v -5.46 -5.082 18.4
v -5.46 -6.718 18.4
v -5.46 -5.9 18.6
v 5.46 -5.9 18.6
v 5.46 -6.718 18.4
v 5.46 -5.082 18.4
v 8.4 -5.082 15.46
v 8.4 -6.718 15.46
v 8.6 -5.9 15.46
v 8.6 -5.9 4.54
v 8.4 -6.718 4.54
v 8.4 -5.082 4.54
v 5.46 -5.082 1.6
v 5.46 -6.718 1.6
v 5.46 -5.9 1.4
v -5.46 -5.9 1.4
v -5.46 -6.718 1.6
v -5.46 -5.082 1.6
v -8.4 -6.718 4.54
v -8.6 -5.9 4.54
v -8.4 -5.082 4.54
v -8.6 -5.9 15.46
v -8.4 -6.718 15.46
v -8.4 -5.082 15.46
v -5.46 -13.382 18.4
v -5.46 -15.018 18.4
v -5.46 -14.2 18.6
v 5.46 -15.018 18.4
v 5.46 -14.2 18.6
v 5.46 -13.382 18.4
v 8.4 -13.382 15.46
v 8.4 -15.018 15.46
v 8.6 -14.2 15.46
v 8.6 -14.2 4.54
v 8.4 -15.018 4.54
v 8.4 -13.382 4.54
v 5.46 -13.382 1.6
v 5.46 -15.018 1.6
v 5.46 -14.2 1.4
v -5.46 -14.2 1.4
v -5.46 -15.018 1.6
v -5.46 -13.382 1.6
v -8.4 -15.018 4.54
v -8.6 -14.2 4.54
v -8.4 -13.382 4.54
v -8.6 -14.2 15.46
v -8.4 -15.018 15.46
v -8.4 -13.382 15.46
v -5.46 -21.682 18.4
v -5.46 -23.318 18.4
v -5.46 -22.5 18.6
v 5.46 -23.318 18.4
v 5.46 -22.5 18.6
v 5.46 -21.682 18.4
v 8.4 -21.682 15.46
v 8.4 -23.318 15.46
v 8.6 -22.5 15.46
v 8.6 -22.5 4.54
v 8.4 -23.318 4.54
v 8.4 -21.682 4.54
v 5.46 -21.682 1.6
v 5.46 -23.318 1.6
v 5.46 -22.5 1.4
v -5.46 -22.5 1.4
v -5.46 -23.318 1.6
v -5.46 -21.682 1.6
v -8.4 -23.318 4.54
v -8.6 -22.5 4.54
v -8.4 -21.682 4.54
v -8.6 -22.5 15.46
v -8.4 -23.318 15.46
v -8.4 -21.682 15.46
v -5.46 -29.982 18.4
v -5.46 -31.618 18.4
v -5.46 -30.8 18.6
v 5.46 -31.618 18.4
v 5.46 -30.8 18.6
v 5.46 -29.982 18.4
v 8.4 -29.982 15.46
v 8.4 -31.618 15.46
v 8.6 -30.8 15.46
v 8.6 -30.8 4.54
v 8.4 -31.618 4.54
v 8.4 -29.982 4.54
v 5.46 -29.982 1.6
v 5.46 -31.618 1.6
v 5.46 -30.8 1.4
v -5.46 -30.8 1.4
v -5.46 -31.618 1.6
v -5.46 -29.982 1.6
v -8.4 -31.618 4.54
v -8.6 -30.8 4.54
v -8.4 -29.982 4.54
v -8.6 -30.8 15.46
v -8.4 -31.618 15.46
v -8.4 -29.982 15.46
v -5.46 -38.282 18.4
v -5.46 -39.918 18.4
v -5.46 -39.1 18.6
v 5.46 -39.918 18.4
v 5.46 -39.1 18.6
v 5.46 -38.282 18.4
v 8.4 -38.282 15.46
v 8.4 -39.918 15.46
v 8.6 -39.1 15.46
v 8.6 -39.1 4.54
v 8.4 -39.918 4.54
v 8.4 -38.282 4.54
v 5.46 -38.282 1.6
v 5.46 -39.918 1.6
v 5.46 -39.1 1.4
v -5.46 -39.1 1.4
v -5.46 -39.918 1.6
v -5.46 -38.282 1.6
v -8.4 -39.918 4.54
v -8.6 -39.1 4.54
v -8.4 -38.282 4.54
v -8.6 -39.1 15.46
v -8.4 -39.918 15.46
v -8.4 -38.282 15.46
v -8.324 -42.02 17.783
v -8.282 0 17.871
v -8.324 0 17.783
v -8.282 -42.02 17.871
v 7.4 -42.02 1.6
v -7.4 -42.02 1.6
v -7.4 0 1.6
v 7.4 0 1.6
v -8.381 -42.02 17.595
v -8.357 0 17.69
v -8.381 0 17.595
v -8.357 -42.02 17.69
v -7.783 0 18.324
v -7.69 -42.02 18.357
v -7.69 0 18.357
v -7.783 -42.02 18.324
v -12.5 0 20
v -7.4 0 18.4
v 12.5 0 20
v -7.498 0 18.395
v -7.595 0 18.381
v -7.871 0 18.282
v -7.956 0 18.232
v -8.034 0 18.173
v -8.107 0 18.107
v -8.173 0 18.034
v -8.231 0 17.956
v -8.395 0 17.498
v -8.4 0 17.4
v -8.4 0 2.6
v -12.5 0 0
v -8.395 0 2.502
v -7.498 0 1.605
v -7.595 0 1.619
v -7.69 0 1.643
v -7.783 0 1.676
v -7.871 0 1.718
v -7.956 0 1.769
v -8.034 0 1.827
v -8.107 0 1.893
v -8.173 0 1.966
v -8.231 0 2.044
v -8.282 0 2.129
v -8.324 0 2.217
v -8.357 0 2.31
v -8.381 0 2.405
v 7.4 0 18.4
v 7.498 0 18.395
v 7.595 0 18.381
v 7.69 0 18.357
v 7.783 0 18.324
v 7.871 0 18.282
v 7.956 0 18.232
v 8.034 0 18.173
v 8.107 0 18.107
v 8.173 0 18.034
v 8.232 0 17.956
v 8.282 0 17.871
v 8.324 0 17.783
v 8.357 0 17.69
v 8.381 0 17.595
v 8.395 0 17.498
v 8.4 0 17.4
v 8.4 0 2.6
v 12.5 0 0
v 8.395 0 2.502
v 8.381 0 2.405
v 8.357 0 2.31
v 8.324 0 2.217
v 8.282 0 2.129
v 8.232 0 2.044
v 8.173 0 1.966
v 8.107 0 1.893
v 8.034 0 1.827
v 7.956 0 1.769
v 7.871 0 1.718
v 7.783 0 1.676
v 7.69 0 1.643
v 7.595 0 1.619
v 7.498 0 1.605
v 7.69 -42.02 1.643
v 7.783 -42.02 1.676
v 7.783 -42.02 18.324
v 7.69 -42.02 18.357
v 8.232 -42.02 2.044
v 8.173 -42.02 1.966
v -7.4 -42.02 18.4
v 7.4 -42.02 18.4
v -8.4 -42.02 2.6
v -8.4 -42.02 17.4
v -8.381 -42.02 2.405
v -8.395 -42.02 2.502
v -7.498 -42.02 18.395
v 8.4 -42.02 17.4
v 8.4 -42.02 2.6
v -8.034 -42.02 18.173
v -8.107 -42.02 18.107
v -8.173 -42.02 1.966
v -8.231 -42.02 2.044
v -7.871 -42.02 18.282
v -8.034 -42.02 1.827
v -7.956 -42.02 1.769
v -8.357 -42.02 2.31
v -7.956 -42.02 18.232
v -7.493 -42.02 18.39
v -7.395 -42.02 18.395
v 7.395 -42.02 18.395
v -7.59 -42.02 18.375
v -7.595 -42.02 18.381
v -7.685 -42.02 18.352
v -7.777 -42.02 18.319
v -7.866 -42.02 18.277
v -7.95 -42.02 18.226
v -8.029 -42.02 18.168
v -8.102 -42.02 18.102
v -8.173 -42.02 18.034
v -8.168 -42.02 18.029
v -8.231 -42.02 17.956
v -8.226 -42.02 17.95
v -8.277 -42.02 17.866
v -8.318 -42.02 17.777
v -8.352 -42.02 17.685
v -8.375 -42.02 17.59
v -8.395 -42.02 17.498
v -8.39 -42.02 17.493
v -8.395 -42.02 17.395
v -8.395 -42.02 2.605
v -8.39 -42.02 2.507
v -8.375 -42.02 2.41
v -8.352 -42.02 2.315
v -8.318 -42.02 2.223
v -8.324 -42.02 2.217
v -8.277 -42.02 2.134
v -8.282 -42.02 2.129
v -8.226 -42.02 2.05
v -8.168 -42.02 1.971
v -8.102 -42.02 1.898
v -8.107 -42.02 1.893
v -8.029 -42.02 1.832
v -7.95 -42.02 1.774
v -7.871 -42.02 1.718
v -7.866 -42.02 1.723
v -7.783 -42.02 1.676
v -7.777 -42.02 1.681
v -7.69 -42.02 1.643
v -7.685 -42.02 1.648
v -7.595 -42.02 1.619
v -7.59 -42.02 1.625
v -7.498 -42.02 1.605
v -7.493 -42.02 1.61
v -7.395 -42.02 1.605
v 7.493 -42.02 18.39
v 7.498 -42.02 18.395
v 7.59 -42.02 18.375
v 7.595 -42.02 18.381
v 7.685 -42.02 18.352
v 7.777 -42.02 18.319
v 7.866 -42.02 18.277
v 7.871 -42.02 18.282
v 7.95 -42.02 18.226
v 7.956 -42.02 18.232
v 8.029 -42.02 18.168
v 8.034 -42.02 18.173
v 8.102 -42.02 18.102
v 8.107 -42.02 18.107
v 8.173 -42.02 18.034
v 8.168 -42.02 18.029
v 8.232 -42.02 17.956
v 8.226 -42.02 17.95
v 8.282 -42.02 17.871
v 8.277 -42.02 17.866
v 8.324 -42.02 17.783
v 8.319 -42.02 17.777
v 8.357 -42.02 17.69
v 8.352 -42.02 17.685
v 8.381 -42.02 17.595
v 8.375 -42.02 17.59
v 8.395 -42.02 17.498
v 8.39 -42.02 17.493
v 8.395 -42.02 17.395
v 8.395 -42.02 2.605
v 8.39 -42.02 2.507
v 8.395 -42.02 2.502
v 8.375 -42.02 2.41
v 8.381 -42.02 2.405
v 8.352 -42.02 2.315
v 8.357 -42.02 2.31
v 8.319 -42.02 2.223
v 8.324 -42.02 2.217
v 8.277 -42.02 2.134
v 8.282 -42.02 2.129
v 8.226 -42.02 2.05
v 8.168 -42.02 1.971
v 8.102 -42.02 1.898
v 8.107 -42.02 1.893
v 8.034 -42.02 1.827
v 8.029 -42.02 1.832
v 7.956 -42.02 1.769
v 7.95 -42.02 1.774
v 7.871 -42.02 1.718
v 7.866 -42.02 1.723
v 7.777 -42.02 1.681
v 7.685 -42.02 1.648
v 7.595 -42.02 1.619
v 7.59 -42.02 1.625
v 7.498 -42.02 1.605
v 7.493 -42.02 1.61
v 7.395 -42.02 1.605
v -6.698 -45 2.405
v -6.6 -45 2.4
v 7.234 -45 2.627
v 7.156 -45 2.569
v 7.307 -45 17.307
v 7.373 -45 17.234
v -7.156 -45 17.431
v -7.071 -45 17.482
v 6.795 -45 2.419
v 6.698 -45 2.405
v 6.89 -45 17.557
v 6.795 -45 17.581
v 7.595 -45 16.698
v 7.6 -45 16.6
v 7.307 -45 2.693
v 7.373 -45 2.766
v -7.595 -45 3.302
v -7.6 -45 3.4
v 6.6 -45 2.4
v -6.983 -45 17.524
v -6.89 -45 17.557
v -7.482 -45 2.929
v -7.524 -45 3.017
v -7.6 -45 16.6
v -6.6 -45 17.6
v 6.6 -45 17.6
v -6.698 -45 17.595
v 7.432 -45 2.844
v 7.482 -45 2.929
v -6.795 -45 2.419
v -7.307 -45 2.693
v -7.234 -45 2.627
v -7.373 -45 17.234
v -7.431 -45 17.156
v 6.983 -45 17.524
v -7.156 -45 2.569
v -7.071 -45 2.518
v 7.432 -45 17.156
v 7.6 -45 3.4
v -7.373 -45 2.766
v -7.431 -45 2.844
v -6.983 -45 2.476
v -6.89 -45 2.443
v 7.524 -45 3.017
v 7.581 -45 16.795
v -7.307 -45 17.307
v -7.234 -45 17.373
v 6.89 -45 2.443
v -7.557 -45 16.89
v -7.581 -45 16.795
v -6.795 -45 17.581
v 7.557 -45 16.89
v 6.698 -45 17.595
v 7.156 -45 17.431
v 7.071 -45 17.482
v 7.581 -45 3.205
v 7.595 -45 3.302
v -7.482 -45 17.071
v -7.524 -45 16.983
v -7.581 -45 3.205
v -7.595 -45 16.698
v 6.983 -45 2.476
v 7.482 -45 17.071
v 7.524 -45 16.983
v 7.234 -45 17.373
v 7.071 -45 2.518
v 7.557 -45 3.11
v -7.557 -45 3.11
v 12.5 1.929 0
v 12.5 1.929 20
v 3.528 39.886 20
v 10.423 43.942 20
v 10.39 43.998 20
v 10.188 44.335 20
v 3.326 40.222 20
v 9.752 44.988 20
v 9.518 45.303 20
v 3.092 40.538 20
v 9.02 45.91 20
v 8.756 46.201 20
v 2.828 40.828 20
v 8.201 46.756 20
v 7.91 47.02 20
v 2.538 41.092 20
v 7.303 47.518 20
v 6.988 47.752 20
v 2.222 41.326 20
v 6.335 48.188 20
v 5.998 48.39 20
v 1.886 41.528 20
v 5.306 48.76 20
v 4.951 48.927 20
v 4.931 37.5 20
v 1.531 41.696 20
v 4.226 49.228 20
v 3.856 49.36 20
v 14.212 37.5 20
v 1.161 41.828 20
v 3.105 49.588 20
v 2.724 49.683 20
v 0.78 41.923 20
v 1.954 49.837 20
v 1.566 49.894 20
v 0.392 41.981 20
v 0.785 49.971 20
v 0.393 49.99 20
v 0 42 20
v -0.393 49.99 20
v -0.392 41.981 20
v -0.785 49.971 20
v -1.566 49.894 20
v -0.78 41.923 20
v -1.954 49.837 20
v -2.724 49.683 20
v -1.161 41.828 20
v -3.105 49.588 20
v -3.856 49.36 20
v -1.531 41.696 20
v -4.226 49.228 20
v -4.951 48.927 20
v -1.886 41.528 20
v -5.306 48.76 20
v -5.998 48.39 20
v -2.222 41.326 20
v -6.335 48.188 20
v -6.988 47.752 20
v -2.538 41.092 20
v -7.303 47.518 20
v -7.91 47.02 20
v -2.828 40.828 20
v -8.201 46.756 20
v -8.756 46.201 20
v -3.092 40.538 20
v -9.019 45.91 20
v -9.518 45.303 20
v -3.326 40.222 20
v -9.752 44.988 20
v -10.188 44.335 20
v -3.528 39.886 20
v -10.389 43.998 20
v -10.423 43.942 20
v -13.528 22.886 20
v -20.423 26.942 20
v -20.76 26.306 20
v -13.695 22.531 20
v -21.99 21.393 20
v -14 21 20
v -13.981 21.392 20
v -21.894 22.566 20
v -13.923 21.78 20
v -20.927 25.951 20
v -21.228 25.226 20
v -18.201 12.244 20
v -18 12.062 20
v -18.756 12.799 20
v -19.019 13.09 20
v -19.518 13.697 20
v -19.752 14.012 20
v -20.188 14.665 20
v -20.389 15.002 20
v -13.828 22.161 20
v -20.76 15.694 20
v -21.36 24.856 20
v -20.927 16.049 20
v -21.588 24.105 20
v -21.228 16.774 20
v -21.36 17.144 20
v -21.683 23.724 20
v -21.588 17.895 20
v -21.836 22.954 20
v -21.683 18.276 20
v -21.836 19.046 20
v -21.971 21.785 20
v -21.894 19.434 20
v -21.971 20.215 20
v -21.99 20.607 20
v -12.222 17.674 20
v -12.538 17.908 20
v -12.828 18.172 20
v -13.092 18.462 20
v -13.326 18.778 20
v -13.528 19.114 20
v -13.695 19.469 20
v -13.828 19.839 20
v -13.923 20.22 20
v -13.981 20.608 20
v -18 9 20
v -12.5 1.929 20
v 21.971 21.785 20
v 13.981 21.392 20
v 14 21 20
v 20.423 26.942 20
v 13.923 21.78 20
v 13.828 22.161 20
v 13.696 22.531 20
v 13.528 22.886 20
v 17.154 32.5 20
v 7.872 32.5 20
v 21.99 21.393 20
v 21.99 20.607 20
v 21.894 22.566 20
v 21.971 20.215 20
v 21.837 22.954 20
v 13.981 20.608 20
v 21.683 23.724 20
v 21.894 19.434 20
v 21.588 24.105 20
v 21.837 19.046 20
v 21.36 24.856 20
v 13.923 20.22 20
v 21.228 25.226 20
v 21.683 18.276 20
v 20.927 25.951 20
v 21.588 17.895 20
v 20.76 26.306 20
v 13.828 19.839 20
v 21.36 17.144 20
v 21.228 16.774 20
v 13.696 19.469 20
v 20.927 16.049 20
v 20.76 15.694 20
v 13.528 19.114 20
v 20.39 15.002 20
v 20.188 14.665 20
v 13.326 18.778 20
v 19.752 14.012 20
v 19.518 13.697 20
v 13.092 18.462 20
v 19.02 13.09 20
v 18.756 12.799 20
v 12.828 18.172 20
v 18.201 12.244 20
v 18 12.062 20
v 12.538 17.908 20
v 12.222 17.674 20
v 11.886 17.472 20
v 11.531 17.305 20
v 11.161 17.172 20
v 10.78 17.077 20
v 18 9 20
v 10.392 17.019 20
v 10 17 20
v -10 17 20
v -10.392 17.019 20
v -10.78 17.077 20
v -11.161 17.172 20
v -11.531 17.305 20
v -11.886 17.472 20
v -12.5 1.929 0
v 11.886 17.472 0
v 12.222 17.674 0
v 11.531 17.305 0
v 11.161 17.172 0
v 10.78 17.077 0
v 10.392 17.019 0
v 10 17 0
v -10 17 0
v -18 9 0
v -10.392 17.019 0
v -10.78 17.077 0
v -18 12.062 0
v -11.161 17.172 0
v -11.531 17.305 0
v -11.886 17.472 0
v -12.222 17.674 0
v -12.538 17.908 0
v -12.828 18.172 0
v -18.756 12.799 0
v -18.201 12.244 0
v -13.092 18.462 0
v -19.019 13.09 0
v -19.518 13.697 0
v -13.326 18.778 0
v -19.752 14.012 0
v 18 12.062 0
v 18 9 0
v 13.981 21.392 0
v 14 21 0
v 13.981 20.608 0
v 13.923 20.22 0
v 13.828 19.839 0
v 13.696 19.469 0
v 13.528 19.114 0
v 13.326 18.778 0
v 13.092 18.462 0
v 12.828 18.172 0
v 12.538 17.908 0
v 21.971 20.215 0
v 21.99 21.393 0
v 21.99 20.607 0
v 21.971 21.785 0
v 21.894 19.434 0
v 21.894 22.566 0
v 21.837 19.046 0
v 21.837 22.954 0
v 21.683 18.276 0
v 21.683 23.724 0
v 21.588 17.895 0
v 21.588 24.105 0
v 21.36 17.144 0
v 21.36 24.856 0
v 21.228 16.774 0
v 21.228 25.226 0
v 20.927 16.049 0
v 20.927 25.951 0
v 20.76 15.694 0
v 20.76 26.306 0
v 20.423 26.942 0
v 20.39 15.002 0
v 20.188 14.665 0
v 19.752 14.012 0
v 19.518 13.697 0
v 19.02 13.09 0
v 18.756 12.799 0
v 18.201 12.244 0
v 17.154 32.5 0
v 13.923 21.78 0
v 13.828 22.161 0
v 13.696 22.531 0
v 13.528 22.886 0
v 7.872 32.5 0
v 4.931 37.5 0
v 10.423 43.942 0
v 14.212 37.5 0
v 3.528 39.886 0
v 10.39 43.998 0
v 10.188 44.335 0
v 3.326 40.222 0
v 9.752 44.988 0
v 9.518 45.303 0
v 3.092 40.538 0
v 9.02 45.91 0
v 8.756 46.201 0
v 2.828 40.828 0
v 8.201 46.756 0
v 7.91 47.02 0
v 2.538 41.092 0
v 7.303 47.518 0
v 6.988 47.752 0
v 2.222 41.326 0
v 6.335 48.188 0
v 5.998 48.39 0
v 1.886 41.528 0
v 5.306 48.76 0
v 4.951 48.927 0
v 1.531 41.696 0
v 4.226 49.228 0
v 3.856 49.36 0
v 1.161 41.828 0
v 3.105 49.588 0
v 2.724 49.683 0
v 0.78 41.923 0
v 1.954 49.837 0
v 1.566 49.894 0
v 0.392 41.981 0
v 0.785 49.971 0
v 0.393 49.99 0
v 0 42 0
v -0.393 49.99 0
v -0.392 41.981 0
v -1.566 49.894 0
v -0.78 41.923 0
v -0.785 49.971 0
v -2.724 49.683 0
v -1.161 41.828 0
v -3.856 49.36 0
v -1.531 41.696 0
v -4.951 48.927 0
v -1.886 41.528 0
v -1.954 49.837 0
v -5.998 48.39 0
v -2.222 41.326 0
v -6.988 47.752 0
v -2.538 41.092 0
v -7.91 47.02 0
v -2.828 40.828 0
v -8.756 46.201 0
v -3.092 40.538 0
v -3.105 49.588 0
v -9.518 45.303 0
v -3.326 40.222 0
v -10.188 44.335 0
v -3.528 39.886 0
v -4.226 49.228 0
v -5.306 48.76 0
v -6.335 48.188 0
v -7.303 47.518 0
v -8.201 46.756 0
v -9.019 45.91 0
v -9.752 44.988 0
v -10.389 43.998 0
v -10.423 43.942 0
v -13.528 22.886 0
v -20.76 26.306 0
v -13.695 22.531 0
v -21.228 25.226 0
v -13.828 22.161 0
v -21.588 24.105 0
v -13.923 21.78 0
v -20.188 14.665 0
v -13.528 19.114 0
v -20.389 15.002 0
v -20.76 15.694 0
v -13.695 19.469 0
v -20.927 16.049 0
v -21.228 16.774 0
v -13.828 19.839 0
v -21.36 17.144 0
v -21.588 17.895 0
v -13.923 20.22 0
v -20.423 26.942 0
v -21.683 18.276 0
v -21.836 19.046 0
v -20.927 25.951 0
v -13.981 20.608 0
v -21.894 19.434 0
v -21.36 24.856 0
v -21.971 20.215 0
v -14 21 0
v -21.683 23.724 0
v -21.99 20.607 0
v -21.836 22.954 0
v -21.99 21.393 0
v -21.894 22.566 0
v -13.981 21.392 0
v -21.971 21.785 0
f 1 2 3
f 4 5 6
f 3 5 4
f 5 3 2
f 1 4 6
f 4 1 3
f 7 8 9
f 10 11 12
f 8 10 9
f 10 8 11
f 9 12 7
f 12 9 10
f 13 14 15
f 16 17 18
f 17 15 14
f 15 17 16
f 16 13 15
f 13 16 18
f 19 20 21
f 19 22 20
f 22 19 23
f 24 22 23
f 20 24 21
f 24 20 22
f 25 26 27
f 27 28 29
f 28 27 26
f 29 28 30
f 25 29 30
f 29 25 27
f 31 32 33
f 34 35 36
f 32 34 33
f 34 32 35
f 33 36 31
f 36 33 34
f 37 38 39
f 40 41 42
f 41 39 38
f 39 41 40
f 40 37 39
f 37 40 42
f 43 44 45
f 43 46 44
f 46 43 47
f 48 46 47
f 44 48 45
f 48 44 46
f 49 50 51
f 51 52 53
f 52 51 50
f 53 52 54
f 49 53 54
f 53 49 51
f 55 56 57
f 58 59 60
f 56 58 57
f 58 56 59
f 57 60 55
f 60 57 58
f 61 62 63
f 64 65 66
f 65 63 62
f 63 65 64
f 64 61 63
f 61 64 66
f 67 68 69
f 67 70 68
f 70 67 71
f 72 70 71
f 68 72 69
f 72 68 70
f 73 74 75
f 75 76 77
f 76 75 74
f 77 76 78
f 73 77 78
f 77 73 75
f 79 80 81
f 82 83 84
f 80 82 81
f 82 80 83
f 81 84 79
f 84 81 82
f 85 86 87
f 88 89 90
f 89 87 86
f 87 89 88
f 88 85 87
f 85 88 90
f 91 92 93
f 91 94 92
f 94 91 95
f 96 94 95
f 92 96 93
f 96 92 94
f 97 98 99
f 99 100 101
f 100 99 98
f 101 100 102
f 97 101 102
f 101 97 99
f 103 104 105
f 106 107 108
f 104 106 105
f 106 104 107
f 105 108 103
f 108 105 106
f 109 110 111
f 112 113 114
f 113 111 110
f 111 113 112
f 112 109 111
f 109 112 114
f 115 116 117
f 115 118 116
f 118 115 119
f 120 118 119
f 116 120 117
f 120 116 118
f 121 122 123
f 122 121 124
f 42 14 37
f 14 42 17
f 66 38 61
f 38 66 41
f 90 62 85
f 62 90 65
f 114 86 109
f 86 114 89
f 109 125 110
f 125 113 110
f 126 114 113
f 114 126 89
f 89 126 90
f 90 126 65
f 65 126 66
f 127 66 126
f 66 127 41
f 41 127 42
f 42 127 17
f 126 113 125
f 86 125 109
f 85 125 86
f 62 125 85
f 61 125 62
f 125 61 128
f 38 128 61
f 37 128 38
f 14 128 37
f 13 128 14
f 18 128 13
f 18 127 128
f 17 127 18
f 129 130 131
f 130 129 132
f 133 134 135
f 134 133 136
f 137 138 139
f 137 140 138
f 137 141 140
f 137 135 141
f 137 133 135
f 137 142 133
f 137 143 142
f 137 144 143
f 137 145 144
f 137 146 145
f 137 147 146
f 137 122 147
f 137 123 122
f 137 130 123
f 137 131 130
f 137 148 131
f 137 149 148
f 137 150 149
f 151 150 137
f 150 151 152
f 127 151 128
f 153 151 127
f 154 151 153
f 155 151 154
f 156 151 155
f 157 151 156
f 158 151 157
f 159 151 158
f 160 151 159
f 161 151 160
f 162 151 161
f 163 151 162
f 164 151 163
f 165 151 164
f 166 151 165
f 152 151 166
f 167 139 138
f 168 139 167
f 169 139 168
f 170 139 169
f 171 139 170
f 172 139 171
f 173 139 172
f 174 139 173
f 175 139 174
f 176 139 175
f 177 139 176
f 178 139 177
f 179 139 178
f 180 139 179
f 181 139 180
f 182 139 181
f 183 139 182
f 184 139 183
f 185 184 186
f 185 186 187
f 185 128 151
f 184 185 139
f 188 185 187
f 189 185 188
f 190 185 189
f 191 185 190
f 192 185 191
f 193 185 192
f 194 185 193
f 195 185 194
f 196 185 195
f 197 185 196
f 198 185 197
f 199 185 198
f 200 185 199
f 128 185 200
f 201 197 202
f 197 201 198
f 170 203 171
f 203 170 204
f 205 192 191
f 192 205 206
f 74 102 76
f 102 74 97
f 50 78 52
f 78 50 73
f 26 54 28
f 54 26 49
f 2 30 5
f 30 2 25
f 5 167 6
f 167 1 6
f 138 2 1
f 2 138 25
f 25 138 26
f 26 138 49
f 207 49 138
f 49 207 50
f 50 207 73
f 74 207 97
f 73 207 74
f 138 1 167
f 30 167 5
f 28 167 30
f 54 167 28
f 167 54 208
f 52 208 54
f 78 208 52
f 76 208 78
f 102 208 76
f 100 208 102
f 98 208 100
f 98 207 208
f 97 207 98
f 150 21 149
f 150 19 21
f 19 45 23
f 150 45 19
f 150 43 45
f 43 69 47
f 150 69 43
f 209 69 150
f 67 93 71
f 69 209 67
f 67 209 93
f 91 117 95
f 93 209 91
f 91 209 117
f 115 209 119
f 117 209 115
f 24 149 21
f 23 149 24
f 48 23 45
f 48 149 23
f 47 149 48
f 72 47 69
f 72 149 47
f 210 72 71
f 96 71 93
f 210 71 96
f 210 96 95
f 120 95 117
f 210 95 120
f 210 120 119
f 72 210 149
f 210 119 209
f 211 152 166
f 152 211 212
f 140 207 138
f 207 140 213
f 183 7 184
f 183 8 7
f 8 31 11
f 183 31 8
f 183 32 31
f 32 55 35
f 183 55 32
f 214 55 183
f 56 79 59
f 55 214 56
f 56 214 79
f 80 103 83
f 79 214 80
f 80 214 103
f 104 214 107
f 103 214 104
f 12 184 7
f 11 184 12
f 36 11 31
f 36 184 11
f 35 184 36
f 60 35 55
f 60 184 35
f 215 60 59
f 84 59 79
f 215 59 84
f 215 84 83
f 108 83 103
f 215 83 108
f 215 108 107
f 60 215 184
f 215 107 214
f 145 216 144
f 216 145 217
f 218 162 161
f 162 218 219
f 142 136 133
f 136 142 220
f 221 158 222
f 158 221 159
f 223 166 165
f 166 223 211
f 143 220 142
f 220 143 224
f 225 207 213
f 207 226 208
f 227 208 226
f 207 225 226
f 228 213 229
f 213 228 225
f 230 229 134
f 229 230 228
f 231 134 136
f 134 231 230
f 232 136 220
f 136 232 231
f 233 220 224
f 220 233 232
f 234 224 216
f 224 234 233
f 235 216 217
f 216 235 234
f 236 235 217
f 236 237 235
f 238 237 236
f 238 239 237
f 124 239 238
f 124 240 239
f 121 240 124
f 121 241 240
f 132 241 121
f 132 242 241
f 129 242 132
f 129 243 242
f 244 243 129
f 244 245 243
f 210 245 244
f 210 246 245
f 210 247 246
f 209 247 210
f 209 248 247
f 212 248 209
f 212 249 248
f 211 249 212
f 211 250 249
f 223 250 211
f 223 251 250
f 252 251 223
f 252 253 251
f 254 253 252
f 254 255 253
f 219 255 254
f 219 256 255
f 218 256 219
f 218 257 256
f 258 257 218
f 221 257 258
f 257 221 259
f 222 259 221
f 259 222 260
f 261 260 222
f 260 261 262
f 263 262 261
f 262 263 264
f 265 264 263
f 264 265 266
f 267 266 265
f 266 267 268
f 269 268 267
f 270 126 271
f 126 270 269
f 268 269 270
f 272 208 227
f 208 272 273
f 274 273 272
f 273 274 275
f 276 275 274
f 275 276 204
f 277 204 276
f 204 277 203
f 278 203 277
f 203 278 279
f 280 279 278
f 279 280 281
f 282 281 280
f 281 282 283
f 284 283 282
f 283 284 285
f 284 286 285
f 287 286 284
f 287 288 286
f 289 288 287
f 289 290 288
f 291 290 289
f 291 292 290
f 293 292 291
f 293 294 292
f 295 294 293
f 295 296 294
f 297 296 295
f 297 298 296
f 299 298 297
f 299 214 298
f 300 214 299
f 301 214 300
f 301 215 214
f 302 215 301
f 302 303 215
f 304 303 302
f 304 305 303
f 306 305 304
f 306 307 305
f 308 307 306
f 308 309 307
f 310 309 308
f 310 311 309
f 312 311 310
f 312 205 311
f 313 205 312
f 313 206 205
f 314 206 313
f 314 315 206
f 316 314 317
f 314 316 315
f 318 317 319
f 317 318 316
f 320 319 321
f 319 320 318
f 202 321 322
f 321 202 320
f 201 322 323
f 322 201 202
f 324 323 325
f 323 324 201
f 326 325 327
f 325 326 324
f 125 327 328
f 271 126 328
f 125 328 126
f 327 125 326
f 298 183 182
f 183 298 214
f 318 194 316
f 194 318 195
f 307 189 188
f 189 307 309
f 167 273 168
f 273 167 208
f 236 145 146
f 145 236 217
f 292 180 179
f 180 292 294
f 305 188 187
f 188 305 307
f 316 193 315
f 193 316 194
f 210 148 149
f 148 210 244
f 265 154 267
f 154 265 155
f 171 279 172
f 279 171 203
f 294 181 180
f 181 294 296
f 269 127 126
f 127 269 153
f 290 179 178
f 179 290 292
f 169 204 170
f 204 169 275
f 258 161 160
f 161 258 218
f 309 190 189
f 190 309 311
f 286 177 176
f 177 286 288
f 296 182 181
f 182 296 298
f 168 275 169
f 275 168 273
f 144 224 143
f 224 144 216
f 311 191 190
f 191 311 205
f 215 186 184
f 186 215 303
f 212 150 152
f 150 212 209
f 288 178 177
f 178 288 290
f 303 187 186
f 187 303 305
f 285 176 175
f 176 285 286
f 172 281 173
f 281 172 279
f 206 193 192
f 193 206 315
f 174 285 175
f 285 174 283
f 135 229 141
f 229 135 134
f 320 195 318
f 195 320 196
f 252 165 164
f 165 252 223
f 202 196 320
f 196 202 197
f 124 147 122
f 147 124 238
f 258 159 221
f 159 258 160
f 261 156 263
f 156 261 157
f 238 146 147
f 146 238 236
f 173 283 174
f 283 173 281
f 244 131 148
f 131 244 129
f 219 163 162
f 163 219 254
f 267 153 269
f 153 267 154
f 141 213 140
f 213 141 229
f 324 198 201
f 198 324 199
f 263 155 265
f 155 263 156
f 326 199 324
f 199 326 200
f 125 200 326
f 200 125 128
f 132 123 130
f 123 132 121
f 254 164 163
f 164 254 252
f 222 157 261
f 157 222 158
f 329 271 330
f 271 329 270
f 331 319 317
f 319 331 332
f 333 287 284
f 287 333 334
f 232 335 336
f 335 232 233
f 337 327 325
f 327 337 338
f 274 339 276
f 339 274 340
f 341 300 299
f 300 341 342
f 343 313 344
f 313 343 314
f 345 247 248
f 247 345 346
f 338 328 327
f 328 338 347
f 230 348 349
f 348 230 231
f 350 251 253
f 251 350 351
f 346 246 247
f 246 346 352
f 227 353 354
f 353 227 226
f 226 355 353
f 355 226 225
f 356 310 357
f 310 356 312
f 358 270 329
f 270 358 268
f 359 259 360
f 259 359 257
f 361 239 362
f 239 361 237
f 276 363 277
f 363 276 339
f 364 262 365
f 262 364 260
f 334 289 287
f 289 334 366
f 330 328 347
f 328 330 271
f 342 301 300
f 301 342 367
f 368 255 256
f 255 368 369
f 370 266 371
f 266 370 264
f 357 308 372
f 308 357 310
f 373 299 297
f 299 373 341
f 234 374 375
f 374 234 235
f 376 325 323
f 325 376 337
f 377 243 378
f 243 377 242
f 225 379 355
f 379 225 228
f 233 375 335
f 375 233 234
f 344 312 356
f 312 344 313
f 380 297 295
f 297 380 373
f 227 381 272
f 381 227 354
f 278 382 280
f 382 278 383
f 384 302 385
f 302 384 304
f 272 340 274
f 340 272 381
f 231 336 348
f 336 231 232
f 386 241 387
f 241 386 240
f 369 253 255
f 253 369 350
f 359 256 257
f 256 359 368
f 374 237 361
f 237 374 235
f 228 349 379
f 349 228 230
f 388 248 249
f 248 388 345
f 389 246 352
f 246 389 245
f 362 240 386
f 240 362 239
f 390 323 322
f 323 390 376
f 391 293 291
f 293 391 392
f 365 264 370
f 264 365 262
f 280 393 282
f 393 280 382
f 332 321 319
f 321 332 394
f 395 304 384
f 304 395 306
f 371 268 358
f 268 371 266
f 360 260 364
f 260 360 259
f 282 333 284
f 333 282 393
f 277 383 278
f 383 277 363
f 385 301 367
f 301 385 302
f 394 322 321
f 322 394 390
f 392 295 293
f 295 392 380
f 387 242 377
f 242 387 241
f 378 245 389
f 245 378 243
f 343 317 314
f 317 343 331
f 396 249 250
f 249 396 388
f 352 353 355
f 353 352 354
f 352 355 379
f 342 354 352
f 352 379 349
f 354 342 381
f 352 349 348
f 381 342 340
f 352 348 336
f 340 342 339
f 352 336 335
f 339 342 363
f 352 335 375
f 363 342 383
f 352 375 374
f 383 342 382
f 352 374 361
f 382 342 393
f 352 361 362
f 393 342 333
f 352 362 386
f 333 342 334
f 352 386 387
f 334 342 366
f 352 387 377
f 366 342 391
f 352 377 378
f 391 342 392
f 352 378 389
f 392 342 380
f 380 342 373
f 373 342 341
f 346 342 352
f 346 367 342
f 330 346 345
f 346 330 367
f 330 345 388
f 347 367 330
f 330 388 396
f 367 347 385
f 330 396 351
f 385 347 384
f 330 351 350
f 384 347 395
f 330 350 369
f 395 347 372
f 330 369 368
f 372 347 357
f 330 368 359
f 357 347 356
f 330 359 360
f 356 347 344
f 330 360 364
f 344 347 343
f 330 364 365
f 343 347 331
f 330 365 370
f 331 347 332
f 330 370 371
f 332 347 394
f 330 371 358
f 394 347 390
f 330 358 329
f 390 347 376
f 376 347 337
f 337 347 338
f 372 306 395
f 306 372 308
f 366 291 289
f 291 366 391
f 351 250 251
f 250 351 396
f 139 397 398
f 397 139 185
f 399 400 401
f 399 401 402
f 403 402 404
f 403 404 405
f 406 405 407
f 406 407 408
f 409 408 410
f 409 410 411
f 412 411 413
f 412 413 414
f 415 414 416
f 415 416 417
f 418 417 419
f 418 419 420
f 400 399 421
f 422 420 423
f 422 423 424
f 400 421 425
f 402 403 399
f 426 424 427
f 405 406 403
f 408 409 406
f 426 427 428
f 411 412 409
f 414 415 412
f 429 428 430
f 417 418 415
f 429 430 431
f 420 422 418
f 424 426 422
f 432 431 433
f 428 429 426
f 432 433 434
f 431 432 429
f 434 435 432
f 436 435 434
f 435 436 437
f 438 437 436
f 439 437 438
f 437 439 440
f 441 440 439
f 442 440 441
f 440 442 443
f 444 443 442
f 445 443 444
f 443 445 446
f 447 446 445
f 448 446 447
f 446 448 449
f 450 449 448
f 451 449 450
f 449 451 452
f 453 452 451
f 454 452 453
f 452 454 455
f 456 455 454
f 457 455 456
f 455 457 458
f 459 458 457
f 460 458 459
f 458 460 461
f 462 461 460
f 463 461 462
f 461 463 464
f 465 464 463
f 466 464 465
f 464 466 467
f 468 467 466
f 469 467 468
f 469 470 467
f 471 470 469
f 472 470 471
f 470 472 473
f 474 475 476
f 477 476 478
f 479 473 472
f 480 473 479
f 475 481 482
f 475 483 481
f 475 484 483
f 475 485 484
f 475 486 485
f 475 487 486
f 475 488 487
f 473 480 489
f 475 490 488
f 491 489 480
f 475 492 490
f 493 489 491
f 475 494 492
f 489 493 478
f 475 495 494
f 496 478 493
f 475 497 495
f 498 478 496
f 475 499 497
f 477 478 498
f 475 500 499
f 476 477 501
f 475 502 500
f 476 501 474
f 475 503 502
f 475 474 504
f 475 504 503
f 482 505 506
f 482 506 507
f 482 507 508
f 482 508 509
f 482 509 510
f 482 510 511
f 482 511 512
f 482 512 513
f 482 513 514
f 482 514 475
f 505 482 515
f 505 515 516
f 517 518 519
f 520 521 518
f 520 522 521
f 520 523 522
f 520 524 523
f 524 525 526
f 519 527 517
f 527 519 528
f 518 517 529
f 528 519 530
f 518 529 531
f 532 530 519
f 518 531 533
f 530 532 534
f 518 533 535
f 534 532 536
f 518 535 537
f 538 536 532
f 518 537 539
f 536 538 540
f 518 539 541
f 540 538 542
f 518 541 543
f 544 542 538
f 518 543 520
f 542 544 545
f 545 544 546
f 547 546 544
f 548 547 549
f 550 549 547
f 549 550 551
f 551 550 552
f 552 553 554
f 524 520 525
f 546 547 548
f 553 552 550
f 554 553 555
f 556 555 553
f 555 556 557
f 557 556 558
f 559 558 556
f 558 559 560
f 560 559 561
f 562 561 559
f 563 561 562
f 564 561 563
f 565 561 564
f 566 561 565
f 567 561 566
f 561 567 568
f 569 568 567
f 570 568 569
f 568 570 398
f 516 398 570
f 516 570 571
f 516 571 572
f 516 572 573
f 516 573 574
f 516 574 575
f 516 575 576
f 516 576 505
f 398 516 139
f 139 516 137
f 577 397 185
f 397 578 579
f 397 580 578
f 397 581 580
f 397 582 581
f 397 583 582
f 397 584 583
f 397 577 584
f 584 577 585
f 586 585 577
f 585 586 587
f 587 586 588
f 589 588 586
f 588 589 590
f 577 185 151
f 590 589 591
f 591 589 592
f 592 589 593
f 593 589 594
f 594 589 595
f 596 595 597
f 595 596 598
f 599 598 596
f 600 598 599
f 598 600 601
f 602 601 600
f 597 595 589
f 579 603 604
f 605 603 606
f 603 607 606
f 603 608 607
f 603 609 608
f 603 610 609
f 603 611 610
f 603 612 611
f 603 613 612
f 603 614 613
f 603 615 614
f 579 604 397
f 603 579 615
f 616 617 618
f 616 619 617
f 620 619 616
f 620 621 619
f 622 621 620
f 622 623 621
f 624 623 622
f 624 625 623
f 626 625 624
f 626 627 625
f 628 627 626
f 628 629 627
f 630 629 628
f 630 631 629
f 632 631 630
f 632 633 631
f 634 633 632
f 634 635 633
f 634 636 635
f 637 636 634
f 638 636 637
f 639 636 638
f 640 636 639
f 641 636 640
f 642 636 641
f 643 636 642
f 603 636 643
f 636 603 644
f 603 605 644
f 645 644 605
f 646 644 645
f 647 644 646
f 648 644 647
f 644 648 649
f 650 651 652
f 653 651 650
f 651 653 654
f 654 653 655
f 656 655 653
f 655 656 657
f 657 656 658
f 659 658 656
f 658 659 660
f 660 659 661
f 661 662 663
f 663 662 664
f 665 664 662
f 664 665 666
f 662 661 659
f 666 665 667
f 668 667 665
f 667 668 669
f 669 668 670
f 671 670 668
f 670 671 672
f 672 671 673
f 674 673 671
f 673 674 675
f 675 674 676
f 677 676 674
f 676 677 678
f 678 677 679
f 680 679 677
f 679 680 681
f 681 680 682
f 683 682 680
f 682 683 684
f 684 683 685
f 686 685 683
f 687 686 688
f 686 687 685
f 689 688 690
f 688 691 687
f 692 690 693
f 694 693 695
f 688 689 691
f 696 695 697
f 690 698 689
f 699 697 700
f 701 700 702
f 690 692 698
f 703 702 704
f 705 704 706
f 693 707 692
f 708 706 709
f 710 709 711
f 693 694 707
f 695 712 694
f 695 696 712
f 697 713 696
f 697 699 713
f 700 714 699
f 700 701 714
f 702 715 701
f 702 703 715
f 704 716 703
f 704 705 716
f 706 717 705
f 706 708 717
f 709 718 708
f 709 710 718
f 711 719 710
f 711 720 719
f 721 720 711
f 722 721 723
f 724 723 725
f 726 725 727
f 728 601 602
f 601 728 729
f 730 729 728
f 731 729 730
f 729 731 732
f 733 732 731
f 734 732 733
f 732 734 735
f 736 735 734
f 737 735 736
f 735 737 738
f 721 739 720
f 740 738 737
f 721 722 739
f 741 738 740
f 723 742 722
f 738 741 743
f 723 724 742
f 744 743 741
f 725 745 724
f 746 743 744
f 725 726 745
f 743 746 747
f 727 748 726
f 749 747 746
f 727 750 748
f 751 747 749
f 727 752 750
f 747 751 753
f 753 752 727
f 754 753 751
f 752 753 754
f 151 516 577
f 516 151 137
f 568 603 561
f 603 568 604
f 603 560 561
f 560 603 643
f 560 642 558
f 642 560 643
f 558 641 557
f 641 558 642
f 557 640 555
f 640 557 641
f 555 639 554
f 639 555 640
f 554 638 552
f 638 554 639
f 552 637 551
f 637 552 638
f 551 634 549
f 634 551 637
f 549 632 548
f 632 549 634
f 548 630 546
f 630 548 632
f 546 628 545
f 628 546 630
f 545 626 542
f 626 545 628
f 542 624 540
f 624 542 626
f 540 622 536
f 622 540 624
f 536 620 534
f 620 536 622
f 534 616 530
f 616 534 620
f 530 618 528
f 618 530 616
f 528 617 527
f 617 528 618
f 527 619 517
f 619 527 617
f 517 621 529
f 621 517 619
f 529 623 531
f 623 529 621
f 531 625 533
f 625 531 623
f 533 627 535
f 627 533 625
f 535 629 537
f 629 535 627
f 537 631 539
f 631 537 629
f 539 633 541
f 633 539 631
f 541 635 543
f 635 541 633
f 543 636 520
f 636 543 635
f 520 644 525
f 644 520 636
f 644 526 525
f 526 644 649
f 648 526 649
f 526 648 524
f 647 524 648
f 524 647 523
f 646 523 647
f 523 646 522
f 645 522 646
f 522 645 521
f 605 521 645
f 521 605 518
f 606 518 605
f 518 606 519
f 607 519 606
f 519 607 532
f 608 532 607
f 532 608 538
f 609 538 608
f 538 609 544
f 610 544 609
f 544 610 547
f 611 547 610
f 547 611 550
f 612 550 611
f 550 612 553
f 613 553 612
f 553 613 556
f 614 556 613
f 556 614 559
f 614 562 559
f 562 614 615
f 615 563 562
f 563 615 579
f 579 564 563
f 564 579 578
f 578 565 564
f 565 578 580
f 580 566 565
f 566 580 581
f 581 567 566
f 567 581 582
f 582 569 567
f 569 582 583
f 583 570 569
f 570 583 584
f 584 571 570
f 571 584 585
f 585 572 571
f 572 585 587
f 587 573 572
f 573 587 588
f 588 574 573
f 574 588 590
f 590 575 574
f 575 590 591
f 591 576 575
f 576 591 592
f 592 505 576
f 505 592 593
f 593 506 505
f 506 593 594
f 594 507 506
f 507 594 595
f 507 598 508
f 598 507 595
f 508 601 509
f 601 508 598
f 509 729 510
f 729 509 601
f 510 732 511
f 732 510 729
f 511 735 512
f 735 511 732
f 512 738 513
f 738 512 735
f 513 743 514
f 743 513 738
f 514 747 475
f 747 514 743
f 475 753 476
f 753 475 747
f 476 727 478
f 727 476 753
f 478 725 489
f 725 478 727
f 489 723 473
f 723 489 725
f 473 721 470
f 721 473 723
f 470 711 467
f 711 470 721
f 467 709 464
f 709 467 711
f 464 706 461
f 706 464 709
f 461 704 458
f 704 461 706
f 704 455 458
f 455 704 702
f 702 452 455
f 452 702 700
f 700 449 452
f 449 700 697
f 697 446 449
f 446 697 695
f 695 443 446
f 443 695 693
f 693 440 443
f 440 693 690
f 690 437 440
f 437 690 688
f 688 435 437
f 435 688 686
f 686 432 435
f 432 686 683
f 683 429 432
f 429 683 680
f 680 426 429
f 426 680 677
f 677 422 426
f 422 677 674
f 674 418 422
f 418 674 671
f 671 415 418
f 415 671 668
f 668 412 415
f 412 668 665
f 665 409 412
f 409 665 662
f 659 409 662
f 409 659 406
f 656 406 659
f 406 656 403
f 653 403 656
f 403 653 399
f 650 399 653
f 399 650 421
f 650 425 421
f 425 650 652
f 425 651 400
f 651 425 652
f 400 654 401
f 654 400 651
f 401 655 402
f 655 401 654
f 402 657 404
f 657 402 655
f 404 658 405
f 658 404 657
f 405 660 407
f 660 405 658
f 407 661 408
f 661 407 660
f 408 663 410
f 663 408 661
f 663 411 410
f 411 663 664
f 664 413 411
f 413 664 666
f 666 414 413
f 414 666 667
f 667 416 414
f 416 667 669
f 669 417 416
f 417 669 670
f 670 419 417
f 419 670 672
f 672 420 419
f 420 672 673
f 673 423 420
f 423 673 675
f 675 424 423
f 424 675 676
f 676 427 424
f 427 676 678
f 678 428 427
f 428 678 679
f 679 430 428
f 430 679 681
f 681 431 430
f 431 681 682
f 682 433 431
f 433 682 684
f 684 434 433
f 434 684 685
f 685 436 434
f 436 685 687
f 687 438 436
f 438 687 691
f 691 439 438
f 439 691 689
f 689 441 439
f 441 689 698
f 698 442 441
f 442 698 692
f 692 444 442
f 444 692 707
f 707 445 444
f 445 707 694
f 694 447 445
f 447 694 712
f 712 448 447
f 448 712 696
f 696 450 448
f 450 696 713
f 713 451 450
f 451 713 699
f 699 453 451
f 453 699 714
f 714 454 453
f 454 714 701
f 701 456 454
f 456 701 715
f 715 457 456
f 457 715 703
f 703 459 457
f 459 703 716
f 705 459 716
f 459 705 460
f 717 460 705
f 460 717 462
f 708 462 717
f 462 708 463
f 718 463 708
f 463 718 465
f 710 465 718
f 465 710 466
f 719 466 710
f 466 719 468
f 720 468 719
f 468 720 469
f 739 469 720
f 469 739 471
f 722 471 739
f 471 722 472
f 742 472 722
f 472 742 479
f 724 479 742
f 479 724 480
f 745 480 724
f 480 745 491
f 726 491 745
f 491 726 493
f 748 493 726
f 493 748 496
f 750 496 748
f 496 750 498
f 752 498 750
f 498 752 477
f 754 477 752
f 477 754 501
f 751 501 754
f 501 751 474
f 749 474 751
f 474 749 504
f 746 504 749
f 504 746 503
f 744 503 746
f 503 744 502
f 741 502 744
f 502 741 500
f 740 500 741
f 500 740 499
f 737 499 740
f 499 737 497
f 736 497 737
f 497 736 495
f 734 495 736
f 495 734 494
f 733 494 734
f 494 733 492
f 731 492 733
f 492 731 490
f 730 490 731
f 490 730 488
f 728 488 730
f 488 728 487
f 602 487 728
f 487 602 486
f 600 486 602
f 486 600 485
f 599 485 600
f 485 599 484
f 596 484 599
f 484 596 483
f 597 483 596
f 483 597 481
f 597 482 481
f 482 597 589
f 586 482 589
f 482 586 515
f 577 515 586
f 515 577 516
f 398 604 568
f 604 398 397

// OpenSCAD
// PETG washing-line prop replacement. All dimensions in mm. No libraries needed.
// Flat mode prints sideways on one common face; normal mode needs plug supports.
// Solid geometry is not a load rating: validate the print on the actual pole.

/* [Output] */
part = "complete"; // [complete,fit_test]
print_orientation = true;
// Common bed face, three ribbed faces, and a flat-bottomed insertion tip.
flat_print_face = false;

/* [Fit test plier grip] */
// Solid block where the hoop would be; rises above shoulder in print orientation.
grip_width = 10;
grip_length = 15;
// EXTRA height above the shoulder's upper printed face.
grip_extra_height = 2;

/* [Square pole and plug] */
// Internal width across flats (not diagonal or outside width).
pole_inside = 17;
// TOTAL width reduction: 0.20 gives a 16.80 mm core in a 17 mm bore.
fit_clearance = 0.20;
plug_depth = 45;
plug_corner_radius = 1.0;
tip_length = 3;
// Reduction on EACH side of the insertion tip.
tip_chamfer = 0.8;

/* [Friction ribs] */
// Crush ribs on three faces in flat mode, four otherwise; zero disables them.
rib_count = 5;
rib_height = 0.20;
rib_width = 1.8;
// Fraction of each flat covered, leaving corners clear.
rib_face_fraction = 0.65;
rib_end_margin = 5;

/* [Shoulder and reinforcement] */
// Must extend beyond the OUTSIDE of the metal pole.
shoulder_width = 25;
shoulder_height = 5;
head_thickness = 20;
neck_width = 22;

/* [Line hoop] */
// Clear opening dimensions before cutting the side entry slot.
opening_width = 28;
opening_height = 25;
opening_corner_radius = 4;
hoop_wall = 8;
// Solid material between shoulder top and bottom of line opening.
seat_height = 12;
// Vertical clearance of horizontal slot in upper right arm; 0 closes hoop.
entry_gap = 5;
// Entry centre as fraction of opening height above its bottom.
entry_position = 0.72;

/* [Quality] */
$fn = 64;

/* [Hidden] */
eps = 0.02;
core = pole_inside - fit_clearance;
rib_span = core + 2 * rib_height;
opening_bottom = shoulder_height + seat_height;
entry_y = opening_bottom + opening_height * entry_position;
print_thickness = max(head_thickness, rib_count > 0 ? rib_span : core);
head_bottom = flat_print_face ? -core/2 : -head_thickness/2;
bed_lift = flat_print_face ? core/2 : print_thickness/2;

assert(part == "complete" || part == "fit_test", "Unknown part");
assert(grip_width > 0 && grip_width <= shoulder_width && grip_length > 0 && grip_extra_height >= 0,
       "Invalid fit-test grip dimensions");
assert(pole_inside > 0 && core > 0 && fit_clearance >= 0, "Invalid bore/clearance");
assert(plug_corner_radius > 0 && plug_corner_radius < core/2, "Invalid corner radius");
assert(tip_chamfer > 0 && tip_chamfer < core/2 && tip_length > 0 && tip_length < plug_depth,
       "Invalid tip dimensions");
assert(rib_count >= 0 && rib_count == floor(rib_count) && rib_height >= 0 && rib_width > 0,
       "Invalid ribs");
assert(rib_face_fraction > 0 && rib_face_fraction <= (core-2*plug_corner_radius)/core,
       "Ribs must stay on the flat faces");
assert(!flat_print_face || core*rib_face_fraction > 2*rib_height,
       "Ribs too tall for bevelled ends");
assert(rib_end_margin >= tip_length && plug_depth > 2*rib_end_margin+rib_width,
       "Plug too short for rib margins");
assert(rib_count <= 1 || (plug_depth-2*rib_end_margin-rib_width)/(rib_count-1) > rib_width,
       "Ribs overlap: reduce count/width or increase plug depth");
assert(shoulder_width > rib_span && shoulder_height > 0 && head_thickness > rib_span,
       "Shoulder must project beyond plug/ribs on all faces");
assert(neck_width >= core && neck_width <= shoulder_width, "Invalid neck width");
assert(hoop_wall > 0 && seat_height >= hoop_wall && head_thickness > 0,
       "Invalid wall/seat thickness");
assert(opening_corner_radius > 0 && opening_width > 2*opening_corner_radius &&
       opening_height > 2*opening_corner_radius, "Invalid hoop opening");
assert(entry_gap >= 0 && entry_y-entry_gap/2 > opening_bottom+opening_corner_radius &&
       entry_y+entry_gap/2 < opening_bottom+opening_height-opening_corner_radius,
       "Gap must remain within upper side of opening; reduce gap or move it");

echo(core_width=core, rib_peak_width=rib_count > 0 ? rib_span : core,
     rib_peak_thickness=core+(rib_count > 0 ? (flat_print_face ? 1 : 2)*rib_height : 0),
     rib_interference_per_side=rib_count > 0 ? rib_height-fit_clearance/2 : -fit_clearance/2);

module rounded_square(size, radius) {
    offset(r=radius) square([size-2*radius, size-2*radius], center=true);
}

// Coordinates: X across hoop, Y along pole, Z through hoop.
module plug_section(y, size, radius) {
    translate([0,y,0]) rotate([90,0,0])
        linear_extrude(height=eps)
            if (flat_print_face)
                // Bottom remains at the bed even at the narrower tip.
                // Lower corners are 45-degree bevels, upper corners rounded.
                hull() {
                    polygon([[-size/2+radius,-core/2], [size/2-radius,-core/2],
                             [size/2,-core/2+radius], [-size/2,-core/2+radius]]);
                    for (x=[-size/2+radius,size/2-radius])
                        translate([x,size/2-radius]) circle(r=radius);
                }
            else rounded_square(size,radius);
}

module plug() {
    // Full-depth solid core with a tapered insertion tip.
    hull() {
        plug_section(0,core,plug_corner_radius);
        plug_section(-plug_depth+tip_length,core,plug_corner_radius);
    }
    hull() {
        plug_section(-plug_depth+tip_length+eps,core,plug_corner_radius);
        plug_section(-plug_depth+eps,core-2*tip_chamfer,
                     min(plug_corner_radius,(core-2*tip_chamfer)/4));
    }
    if (rib_count > 0 && rib_height > 0)
        for (i=[0:rib_count-1]) {
            pos = rib_count == 1 ? plug_depth/2 :
                  rib_end_margin+rib_width/2+i*(plug_depth-2*rib_end_margin-rib_width)/(rib_count-1);
            for (angle=flat_print_face ? [0,90,270] : [0,90,180,270]) rotate([0,angle,0])
                translate([0,-pos,0])
                    if (flat_print_face)
                        // Bevel both ends 45 degrees so side ribs grow from the core.
                        hull() {
                            translate([-core*rib_face_fraction/2,-rib_width/2,core/2-eps])
                                cube([core*rib_face_fraction,rib_width,eps]);
                            translate([-(core*rib_face_fraction-2*rib_height)/2,-eps/2,core/2+rib_height-eps])
                                cube([core*rib_face_fraction-2*rib_height,eps,eps]);
                        }
                    else
                    // Triangular crush bead, embedded slightly in the core.
                    rotate([0,90,0]) linear_extrude(height=core*rib_face_fraction,center=true)
                        polygon([[-core/2+eps,-rib_width/2],
                                 [-core/2-rib_height,0],
                                 [-core/2+eps,rib_width/2]]);
        }
}

module opening() {
    r=opening_corner_radius;
    hull() {
        translate([-opening_width/2+r,opening_bottom+r]) circle(r=r);
        translate([ opening_width/2-r,opening_bottom+r]) circle(r=r);
        translate([0,opening_bottom+opening_height-r]) circle(r=r);
    }
}

module shoulder() {
    translate([-shoulder_width/2,0,head_bottom])
        cube([shoulder_width,shoulder_height,head_thickness]);
}

module head() {
    translate([0,0,head_bottom]) linear_extrude(height=head_thickness)
        difference() {
            union() {
                offset(r=hoop_wall) opening();
                // Broad tapered connection overlapping both shoulder and lower hoop.
                hull() {
                    translate([-neck_width/2,0]) square([neck_width,shoulder_height]);
                    translate([-(opening_width+hoop_wall)/2,opening_bottom-hoop_wall])
                        square([opening_width+hoop_wall,hoop_wall]);
                }
            }
            opening();
            if (entry_gap > 0)
                translate([0,entry_y-entry_gap/2])
                    square([opening_width+2*hoop_wall,entry_gap]);
        }
}

module model() {
    union() {
        plug();
        shoulder();
        if (part == "complete") head();
        else
            // Full-thickness base overlaps shoulder; flat bed-facing underside.
            translate([-grip_width/2,shoulder_height-eps,head_bottom])
                cube([grip_width,grip_length+eps,head_thickness+grip_extra_height]);
    }
}

if (print_orientation)
    translate([0,0,bed_lift]) model();
else
    rotate([90,0,0]) model();
